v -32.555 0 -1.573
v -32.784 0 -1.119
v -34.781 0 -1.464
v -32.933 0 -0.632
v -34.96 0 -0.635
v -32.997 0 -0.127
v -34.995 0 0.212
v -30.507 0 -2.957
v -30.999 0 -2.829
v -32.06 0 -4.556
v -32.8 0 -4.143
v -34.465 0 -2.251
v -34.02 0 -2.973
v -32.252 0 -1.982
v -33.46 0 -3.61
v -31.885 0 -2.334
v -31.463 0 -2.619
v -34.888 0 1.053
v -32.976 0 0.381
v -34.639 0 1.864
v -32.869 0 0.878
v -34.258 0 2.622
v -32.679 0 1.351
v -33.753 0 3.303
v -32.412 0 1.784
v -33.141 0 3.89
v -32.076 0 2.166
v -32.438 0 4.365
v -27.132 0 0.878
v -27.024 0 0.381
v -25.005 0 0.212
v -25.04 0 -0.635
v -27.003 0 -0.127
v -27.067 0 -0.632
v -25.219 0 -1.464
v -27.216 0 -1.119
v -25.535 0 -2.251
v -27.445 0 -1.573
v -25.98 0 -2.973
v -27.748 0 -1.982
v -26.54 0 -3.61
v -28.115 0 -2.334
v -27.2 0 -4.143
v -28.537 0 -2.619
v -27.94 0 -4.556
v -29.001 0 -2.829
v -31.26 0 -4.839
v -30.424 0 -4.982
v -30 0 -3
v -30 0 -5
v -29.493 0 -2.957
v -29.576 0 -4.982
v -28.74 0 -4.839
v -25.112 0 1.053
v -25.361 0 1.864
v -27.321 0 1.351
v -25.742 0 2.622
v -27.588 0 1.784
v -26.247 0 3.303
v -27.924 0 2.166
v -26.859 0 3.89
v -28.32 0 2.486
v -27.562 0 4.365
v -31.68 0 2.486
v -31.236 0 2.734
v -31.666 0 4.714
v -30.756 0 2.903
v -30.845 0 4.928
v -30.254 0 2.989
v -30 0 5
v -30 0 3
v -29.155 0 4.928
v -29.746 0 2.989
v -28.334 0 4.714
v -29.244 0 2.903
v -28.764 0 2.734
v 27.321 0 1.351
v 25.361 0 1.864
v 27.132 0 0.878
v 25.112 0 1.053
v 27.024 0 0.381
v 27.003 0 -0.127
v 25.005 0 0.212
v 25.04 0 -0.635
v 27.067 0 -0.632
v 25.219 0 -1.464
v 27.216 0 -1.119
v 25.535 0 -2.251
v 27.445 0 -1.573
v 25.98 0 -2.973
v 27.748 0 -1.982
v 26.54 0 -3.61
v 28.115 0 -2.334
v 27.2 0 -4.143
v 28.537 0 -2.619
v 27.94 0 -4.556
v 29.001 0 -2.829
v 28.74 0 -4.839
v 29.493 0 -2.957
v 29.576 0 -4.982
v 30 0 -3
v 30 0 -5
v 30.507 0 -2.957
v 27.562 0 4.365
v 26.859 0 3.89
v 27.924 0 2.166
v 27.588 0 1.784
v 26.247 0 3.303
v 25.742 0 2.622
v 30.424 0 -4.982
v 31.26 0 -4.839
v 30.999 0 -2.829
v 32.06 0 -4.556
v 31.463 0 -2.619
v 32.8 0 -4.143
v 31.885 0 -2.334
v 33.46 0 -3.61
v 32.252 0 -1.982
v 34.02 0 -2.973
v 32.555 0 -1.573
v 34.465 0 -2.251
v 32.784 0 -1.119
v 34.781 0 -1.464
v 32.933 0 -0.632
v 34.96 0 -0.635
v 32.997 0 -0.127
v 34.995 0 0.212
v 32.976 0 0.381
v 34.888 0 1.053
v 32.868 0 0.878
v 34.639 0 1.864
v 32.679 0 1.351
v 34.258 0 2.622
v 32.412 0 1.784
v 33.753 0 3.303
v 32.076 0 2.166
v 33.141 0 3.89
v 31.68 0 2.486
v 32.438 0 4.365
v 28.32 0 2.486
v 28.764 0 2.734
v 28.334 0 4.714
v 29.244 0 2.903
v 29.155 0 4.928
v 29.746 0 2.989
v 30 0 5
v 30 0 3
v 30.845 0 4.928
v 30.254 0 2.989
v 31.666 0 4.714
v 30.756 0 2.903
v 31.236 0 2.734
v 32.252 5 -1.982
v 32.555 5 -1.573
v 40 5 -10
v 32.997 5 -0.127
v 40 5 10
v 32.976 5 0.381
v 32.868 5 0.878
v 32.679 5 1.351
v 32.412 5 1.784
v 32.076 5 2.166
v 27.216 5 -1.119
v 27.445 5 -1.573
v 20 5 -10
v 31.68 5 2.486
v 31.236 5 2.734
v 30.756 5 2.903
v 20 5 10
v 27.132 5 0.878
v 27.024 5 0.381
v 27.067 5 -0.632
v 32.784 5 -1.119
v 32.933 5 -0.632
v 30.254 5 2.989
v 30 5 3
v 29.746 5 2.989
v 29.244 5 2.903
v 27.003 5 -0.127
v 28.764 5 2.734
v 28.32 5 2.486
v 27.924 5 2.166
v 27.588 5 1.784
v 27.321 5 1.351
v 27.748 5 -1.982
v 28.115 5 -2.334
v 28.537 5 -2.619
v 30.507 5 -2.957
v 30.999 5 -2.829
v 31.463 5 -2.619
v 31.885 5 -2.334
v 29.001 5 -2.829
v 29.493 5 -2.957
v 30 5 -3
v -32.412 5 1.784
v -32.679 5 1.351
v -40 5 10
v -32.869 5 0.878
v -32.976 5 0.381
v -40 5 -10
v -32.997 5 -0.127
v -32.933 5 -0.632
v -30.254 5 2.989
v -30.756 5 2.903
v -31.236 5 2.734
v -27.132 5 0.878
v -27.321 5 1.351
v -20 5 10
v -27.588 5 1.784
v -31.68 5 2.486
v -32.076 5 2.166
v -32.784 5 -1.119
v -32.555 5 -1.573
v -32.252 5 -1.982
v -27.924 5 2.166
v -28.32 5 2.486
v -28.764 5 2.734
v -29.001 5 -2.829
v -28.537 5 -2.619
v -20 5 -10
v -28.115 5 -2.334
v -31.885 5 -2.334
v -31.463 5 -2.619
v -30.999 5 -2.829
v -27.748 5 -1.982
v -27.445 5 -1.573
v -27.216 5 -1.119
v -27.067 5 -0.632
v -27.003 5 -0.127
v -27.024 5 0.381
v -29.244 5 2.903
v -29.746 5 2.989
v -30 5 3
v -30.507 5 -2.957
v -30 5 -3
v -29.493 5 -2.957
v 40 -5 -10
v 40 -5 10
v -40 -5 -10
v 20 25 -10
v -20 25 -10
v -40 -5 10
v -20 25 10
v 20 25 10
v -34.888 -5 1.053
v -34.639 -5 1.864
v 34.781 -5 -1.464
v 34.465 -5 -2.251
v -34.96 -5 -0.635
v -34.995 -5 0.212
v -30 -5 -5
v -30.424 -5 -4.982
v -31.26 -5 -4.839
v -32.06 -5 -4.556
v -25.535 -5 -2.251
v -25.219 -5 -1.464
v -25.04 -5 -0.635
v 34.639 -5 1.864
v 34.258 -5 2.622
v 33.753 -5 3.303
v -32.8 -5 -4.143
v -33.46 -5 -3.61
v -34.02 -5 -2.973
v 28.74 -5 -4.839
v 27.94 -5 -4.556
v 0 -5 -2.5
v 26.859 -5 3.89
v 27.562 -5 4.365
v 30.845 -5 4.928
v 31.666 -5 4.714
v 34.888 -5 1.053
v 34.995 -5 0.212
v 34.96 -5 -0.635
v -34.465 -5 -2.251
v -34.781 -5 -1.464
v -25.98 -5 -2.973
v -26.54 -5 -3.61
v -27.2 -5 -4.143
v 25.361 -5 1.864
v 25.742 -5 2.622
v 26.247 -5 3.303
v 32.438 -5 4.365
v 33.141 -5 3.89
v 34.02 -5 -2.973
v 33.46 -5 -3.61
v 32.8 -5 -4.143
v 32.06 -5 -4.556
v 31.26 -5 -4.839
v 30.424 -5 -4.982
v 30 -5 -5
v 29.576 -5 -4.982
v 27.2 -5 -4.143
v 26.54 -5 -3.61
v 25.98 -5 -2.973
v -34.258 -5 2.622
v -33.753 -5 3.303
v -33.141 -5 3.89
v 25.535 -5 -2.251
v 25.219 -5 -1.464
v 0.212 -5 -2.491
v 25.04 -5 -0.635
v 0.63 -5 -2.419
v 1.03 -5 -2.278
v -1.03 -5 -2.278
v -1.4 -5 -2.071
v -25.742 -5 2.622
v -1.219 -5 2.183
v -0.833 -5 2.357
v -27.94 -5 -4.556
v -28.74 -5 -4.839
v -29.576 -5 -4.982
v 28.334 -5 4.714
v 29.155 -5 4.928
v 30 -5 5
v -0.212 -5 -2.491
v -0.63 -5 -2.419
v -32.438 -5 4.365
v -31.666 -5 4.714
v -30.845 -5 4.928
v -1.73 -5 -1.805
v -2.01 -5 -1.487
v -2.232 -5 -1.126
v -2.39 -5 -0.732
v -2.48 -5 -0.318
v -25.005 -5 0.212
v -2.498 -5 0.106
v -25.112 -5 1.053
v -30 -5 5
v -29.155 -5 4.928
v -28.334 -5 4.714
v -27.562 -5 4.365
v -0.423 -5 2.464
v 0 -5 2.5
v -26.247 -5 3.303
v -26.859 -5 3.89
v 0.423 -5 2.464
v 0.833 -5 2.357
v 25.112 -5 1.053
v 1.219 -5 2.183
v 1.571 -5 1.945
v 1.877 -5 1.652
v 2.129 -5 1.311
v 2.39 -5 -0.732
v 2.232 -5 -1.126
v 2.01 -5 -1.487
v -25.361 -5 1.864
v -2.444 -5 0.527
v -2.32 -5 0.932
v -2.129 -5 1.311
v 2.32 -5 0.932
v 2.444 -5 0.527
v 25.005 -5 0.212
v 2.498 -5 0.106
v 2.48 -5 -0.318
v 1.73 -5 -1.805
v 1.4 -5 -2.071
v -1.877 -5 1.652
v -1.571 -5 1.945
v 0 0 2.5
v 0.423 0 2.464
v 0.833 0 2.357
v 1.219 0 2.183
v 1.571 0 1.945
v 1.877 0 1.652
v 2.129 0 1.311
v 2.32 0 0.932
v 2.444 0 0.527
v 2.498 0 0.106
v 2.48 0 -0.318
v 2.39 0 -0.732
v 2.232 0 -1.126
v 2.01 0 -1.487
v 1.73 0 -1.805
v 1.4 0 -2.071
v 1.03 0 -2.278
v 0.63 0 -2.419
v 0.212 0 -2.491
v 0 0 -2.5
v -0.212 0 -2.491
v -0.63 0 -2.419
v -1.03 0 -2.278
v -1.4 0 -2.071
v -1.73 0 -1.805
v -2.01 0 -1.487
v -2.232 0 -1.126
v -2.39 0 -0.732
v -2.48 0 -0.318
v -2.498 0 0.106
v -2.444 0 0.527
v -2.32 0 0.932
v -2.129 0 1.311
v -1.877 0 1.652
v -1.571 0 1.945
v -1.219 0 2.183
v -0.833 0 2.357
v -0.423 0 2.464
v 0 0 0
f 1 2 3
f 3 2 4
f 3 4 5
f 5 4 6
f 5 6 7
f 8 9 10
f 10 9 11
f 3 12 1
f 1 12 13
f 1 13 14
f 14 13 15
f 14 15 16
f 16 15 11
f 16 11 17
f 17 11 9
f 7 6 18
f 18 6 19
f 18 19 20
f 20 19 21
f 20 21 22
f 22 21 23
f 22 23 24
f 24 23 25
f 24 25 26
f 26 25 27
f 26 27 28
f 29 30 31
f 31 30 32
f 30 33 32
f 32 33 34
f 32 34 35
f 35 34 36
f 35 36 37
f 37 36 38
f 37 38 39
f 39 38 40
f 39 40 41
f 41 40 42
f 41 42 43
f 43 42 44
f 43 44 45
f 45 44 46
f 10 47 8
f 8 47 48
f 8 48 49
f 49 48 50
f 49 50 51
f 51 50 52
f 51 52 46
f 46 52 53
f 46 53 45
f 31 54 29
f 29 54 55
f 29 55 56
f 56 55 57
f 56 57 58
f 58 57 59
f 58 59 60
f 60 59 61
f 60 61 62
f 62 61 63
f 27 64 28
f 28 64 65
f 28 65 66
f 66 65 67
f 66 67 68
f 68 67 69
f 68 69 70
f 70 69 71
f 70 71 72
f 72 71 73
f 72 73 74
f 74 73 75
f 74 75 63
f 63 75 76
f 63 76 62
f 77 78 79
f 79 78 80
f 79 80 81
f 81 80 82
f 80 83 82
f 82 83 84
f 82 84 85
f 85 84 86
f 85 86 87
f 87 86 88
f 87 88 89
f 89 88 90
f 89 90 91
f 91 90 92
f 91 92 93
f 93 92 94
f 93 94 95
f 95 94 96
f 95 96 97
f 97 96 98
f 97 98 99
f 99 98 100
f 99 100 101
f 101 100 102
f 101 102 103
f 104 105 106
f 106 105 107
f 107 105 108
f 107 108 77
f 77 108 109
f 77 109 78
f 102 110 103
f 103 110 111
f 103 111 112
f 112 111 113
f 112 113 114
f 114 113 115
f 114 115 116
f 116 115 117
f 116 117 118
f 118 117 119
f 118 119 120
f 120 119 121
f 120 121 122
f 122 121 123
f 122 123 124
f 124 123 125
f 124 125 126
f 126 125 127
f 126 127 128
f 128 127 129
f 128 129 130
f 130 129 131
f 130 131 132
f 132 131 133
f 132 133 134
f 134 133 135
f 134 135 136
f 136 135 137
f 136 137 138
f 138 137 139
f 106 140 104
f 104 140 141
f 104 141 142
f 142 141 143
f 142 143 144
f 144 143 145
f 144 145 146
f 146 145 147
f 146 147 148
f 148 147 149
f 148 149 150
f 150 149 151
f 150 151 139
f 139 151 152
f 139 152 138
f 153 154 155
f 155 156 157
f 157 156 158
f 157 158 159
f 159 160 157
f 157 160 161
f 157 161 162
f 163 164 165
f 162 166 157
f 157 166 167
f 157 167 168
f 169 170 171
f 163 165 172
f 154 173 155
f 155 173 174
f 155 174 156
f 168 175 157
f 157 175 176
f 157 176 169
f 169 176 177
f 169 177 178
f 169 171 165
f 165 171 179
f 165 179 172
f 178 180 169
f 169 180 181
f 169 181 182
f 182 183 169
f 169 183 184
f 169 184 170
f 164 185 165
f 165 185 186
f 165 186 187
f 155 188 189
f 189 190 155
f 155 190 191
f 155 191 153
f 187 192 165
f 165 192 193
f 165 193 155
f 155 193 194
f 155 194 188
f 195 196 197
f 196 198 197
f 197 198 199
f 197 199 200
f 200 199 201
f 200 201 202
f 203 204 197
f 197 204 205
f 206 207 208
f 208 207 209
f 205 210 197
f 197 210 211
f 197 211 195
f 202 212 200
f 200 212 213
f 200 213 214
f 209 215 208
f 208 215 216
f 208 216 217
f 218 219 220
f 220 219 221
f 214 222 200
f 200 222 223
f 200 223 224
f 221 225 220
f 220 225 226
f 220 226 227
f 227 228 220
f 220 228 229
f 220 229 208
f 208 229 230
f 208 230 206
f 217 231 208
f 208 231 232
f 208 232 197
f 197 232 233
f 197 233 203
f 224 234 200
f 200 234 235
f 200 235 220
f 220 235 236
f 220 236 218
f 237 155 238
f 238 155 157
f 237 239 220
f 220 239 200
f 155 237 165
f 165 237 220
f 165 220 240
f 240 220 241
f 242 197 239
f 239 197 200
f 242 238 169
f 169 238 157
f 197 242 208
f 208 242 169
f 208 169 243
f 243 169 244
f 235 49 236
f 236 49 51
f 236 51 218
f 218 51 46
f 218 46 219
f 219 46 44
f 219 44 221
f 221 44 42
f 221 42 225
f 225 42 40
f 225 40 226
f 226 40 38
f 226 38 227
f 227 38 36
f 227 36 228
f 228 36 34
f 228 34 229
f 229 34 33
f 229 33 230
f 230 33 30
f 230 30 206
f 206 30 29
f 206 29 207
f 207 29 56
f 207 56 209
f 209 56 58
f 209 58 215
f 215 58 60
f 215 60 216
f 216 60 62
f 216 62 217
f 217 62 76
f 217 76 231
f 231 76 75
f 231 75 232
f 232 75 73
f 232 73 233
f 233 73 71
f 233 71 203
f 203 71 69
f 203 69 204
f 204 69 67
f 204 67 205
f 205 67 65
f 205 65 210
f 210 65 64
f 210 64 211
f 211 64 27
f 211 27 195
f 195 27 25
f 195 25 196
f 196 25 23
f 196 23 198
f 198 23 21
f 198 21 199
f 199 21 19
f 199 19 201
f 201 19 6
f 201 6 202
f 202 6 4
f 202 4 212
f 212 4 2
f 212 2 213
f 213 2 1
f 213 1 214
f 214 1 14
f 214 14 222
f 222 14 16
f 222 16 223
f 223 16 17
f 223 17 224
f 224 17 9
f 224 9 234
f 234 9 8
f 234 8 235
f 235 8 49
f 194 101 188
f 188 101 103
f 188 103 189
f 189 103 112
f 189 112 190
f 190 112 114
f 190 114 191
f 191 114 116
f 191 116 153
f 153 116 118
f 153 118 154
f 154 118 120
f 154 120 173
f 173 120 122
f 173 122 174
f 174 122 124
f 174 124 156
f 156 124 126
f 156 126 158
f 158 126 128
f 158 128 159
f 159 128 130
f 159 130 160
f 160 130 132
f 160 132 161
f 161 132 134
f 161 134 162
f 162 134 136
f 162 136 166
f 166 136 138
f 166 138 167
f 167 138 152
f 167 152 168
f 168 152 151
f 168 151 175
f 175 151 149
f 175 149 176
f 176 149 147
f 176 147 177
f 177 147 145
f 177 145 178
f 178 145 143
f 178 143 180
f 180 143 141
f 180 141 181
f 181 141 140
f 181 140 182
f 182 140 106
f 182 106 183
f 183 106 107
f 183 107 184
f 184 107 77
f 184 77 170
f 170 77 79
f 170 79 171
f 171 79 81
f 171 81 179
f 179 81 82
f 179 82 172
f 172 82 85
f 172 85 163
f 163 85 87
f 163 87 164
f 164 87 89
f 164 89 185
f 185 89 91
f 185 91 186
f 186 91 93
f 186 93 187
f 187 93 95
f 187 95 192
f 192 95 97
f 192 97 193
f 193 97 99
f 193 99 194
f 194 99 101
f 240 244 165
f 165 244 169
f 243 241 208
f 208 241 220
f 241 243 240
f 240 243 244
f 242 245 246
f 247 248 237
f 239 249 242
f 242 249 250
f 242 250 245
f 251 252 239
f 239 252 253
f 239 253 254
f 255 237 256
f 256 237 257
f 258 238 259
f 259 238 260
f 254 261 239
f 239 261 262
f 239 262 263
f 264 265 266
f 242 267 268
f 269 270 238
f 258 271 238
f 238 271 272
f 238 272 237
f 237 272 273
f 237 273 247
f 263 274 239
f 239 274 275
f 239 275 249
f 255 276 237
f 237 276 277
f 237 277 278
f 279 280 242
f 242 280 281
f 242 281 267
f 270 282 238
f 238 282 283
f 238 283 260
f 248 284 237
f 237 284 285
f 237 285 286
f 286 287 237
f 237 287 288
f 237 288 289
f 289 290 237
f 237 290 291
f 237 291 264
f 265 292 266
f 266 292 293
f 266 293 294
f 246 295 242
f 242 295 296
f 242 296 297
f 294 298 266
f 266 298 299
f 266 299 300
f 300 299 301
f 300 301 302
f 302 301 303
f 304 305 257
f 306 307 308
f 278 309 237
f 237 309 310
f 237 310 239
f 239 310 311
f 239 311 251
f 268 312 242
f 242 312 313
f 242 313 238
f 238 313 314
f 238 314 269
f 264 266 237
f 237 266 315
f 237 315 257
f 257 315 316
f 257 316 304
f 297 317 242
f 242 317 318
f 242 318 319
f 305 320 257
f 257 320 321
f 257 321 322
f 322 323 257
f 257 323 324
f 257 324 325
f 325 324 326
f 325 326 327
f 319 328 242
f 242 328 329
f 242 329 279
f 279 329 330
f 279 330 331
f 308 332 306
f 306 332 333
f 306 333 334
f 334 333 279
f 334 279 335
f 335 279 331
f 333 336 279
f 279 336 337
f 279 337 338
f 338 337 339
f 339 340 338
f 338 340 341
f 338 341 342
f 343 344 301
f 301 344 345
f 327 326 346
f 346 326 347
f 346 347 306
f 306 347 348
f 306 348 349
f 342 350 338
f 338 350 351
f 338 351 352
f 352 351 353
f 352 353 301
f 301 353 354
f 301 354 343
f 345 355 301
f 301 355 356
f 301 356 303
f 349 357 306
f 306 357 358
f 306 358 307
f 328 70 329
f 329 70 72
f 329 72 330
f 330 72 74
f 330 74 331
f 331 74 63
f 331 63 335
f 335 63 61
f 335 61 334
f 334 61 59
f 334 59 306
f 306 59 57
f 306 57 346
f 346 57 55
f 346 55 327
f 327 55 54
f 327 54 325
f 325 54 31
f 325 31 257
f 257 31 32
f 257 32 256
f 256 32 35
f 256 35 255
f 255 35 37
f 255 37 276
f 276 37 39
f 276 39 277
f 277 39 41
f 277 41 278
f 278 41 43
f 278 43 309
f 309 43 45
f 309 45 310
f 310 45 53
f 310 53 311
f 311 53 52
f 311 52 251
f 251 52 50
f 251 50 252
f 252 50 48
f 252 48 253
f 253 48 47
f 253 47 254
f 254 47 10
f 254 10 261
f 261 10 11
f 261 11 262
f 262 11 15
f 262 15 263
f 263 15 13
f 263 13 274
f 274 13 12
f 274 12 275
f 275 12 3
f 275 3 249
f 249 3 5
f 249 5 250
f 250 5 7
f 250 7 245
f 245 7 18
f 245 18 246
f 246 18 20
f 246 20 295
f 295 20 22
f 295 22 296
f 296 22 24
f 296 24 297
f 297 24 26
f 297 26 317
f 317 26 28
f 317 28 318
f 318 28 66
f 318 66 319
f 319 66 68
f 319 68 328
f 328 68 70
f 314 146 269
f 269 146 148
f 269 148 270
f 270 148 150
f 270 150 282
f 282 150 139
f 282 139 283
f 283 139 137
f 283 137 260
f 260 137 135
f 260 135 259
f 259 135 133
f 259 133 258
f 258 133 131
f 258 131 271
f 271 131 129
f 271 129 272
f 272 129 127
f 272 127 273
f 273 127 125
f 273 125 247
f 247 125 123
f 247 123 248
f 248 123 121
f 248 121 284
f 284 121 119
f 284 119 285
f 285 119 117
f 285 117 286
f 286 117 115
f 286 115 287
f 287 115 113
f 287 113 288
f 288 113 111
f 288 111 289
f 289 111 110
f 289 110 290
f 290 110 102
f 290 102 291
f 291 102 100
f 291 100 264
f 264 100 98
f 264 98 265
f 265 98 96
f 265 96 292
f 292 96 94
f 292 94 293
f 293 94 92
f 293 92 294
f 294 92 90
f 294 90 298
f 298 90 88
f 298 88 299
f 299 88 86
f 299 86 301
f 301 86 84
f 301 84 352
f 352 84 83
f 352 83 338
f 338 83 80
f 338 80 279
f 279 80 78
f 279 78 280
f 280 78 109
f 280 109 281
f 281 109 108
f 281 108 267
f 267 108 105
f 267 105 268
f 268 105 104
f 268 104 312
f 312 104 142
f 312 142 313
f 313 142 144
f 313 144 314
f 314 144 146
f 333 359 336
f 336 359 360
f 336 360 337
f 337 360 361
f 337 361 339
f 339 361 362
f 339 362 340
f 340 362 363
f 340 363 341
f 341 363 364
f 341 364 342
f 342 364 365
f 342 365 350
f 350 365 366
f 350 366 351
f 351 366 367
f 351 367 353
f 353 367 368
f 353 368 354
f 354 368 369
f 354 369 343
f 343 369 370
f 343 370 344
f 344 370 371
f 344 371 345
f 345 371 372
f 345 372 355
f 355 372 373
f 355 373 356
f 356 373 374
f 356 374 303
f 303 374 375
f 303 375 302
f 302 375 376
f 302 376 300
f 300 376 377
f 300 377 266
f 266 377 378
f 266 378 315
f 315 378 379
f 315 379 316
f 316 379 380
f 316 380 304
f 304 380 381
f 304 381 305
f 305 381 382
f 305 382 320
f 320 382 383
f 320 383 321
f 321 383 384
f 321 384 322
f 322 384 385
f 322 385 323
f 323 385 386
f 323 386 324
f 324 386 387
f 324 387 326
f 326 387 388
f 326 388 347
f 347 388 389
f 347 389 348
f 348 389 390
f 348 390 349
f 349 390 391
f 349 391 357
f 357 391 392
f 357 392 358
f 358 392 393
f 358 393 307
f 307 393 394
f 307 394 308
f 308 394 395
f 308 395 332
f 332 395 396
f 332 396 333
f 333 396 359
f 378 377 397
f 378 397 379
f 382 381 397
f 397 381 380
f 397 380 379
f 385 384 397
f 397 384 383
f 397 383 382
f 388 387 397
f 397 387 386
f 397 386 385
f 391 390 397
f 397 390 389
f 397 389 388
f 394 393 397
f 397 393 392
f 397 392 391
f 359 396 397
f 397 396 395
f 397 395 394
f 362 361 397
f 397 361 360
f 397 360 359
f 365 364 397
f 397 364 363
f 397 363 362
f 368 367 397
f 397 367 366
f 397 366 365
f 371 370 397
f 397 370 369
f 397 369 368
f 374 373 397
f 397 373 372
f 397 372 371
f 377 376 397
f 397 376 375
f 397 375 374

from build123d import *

# Parameters (mm, degrees)
SKETCH_1_W      = 80
SKETCH_1_H      = 20
SKETCH_1_R      = 3
EXTRUDE_1_DEPTH = 5
SKETCH_2_W      = 40
SKETCH_2_H      = 20
EXTRUDE_2_DEPTH = 20
SKETCH_3_W      = 80
SKETCH_3_H      = 20
SKETCH_3_R      = 5
SKETCH_3_R_2    = 2.5
EXTRUDE_3_DEPTH = 5


with BuildPart() as part:
    # 草图1 → 凸台-拉伸1 (new body)
    with BuildSketch(Plane(origin=(0, 0, 0), x_dir=(1, 0, 0), z_dir=(0, 1, 0))):
        Rectangle(SKETCH_1_W, SKETCH_1_H)
        with Locations(Location((-30, 0, 0), (0, 0, 270))):
            Circle(SKETCH_1_R, mode=Mode.SUBTRACT)
        with Locations(Location((30, 0, 0), (0, 0, 270))):
            Circle(SKETCH_1_R, mode=Mode.SUBTRACT)
    extrude(amount=EXTRUDE_1_DEPTH)

    # 草图2 → 凸台-拉伸2 (add)
    with BuildSketch(Plane(origin=(0, 5, 0), x_dir=(1, 0, 0), z_dir=(0, 1, 0))):
        Rectangle(SKETCH_2_W, SKETCH_2_H)
    extrude(amount=EXTRUDE_2_DEPTH)

    # 草图3 → 凸台-拉伸3 (add)
    with BuildSketch(Plane.XZ):
        Rectangle(SKETCH_3_W, SKETCH_3_H)
        with Locations(Location((-30, 0, 0), (0, 0, 270))):
            Circle(SKETCH_3_R, mode=Mode.SUBTRACT)
        with Locations(Location((30, 0, 0), (0, 0, 270))):
            Circle(SKETCH_3_R, mode=Mode.SUBTRACT)
        with Locations(Location((0, 0, 0), (0, 0, 270))):
            Circle(SKETCH_3_R_2, mode=Mode.SUBTRACT)
    extrude(amount=EXTRUDE_3_DEPTH)


solid = part.part
